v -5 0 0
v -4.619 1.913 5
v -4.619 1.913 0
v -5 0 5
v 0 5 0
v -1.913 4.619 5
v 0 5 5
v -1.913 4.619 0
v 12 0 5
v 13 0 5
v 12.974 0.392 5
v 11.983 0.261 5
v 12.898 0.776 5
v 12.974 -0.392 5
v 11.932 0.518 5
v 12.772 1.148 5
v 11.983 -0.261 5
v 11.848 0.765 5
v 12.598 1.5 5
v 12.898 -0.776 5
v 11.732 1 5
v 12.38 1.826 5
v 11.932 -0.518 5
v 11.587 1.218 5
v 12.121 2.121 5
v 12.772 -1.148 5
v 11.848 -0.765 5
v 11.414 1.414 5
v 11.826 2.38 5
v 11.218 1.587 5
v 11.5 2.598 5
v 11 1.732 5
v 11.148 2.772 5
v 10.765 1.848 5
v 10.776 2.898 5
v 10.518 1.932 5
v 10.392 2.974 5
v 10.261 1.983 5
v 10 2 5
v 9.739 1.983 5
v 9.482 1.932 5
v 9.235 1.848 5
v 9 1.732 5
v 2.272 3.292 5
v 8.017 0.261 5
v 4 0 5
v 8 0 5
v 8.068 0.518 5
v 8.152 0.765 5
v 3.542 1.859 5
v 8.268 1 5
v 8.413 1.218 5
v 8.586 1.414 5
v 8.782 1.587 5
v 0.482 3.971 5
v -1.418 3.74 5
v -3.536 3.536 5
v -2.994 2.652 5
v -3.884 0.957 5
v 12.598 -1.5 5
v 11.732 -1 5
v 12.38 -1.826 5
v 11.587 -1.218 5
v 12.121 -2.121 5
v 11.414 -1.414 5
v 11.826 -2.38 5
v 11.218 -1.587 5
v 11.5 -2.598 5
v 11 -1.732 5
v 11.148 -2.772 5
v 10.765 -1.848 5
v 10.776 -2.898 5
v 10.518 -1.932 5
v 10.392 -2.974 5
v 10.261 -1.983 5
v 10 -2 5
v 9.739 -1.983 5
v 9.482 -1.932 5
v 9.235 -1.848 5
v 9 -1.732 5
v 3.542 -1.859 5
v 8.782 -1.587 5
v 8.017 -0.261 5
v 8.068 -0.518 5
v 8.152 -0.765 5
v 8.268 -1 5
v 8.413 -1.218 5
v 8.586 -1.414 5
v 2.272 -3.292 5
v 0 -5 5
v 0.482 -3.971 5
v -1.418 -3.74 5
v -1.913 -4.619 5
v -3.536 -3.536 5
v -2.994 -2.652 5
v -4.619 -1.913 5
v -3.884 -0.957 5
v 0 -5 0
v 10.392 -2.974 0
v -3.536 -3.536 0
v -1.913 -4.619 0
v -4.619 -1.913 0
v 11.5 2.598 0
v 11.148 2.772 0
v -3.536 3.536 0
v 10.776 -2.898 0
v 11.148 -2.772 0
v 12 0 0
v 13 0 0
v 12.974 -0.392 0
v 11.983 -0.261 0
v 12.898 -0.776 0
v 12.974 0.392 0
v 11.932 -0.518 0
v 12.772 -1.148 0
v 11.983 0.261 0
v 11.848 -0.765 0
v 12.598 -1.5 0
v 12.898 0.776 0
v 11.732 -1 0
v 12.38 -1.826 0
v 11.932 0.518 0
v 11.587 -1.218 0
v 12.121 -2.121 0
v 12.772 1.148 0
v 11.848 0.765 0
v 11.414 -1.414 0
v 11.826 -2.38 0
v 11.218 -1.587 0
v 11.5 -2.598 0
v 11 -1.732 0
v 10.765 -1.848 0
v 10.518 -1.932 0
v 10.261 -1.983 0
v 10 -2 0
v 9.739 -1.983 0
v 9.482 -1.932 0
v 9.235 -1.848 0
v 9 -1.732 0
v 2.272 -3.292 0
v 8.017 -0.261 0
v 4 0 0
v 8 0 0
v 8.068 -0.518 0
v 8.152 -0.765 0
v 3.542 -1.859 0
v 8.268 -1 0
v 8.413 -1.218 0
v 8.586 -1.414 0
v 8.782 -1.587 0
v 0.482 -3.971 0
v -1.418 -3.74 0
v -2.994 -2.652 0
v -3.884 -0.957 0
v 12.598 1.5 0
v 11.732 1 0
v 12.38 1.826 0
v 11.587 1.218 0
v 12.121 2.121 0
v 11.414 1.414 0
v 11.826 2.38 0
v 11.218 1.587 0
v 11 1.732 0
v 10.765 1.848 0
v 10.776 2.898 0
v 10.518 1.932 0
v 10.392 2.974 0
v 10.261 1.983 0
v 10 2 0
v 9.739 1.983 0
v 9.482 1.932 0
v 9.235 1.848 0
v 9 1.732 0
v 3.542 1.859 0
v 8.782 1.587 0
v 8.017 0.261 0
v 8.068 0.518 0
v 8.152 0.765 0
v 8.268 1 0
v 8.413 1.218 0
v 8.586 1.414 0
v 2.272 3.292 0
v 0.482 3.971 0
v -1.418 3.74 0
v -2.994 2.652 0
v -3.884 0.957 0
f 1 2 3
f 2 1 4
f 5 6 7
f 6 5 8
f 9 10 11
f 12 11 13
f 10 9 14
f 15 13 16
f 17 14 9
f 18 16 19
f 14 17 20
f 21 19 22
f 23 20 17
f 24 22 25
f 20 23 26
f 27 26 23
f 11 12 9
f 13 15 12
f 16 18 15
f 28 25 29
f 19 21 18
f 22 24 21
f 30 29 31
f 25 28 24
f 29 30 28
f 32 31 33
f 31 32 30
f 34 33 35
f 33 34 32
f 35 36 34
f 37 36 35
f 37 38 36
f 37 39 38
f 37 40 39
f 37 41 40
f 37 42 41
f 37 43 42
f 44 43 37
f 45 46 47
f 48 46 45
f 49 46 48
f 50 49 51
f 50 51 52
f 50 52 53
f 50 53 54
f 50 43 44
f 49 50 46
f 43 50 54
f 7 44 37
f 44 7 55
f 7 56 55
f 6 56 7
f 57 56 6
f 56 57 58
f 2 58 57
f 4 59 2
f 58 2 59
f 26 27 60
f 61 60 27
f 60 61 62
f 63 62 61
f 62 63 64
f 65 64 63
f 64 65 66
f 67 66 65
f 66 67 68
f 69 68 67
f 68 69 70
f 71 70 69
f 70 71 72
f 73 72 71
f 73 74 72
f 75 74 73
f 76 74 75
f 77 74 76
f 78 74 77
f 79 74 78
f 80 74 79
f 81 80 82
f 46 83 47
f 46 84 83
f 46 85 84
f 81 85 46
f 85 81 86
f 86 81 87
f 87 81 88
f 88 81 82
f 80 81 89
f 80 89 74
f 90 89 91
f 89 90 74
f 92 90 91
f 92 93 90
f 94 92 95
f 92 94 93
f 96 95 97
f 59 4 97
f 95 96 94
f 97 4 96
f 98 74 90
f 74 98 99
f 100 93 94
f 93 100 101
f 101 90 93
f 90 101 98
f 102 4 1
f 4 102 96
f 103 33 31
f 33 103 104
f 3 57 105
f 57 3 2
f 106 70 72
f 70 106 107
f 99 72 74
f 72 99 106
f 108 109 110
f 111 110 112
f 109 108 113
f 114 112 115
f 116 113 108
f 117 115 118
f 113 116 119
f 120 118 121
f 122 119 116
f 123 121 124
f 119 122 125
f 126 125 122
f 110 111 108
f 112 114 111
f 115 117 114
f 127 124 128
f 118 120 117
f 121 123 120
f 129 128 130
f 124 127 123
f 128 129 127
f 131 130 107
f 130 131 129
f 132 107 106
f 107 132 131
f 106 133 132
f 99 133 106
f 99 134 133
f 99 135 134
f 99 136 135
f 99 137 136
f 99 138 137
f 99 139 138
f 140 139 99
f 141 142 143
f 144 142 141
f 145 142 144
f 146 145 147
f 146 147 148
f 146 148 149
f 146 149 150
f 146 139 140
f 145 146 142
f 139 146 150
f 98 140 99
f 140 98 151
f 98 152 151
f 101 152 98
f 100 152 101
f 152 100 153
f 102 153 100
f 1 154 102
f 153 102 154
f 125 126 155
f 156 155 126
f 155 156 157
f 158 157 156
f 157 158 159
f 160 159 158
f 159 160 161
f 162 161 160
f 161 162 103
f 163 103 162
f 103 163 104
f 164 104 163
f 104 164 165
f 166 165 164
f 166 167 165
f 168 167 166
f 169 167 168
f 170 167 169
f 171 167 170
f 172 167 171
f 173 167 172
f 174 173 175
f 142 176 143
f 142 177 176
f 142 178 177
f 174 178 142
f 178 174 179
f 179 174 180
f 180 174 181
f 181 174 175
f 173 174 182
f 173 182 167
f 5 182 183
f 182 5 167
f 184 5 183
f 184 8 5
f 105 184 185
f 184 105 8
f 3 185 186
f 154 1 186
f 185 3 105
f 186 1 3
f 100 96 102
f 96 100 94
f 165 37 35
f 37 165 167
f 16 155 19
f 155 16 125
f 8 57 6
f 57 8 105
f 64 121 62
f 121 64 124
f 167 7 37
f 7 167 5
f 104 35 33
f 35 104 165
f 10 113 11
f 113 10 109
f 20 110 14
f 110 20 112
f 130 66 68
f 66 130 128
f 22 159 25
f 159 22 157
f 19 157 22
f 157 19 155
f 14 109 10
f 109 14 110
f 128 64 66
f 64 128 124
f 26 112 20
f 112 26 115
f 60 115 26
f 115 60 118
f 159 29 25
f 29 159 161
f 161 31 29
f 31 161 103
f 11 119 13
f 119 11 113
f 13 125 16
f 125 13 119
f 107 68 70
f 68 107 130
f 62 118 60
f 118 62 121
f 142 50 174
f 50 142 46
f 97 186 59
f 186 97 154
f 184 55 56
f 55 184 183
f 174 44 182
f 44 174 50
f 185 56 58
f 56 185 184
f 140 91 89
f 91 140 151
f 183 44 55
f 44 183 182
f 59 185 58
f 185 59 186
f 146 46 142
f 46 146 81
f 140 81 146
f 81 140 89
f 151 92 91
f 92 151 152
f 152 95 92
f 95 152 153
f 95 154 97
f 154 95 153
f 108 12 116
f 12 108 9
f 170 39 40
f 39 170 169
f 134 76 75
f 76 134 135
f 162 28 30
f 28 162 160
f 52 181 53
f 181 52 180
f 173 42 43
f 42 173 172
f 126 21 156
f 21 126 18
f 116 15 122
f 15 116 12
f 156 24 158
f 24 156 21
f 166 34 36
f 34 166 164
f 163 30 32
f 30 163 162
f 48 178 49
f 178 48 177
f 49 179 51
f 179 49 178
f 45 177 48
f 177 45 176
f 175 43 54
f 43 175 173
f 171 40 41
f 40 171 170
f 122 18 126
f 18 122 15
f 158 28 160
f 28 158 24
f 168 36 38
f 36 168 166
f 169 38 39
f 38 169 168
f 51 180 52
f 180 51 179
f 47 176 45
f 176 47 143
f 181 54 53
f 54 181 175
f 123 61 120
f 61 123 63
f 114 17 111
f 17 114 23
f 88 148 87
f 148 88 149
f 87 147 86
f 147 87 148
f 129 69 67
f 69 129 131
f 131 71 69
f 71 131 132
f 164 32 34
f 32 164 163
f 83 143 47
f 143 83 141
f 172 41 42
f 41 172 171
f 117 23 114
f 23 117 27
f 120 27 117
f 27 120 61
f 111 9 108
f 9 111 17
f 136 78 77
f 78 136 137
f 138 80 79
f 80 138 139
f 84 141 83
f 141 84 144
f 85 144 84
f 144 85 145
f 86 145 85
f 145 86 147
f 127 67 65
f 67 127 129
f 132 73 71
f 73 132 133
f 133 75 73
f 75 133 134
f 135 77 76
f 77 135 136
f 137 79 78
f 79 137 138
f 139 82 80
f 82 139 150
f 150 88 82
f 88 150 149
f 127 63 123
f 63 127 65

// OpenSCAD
width = 5;

difference()
{
    hull()
    {
        cylinder(d=10, h=width);
        translate([10, 0, 0])
        cylinder(d=6, h=width,$fn=48);
    }

    cylinder(d=8, h=width);
    translate([10, 0, 0])
    cylinder(d=4, h=width,$fn=48);
}
